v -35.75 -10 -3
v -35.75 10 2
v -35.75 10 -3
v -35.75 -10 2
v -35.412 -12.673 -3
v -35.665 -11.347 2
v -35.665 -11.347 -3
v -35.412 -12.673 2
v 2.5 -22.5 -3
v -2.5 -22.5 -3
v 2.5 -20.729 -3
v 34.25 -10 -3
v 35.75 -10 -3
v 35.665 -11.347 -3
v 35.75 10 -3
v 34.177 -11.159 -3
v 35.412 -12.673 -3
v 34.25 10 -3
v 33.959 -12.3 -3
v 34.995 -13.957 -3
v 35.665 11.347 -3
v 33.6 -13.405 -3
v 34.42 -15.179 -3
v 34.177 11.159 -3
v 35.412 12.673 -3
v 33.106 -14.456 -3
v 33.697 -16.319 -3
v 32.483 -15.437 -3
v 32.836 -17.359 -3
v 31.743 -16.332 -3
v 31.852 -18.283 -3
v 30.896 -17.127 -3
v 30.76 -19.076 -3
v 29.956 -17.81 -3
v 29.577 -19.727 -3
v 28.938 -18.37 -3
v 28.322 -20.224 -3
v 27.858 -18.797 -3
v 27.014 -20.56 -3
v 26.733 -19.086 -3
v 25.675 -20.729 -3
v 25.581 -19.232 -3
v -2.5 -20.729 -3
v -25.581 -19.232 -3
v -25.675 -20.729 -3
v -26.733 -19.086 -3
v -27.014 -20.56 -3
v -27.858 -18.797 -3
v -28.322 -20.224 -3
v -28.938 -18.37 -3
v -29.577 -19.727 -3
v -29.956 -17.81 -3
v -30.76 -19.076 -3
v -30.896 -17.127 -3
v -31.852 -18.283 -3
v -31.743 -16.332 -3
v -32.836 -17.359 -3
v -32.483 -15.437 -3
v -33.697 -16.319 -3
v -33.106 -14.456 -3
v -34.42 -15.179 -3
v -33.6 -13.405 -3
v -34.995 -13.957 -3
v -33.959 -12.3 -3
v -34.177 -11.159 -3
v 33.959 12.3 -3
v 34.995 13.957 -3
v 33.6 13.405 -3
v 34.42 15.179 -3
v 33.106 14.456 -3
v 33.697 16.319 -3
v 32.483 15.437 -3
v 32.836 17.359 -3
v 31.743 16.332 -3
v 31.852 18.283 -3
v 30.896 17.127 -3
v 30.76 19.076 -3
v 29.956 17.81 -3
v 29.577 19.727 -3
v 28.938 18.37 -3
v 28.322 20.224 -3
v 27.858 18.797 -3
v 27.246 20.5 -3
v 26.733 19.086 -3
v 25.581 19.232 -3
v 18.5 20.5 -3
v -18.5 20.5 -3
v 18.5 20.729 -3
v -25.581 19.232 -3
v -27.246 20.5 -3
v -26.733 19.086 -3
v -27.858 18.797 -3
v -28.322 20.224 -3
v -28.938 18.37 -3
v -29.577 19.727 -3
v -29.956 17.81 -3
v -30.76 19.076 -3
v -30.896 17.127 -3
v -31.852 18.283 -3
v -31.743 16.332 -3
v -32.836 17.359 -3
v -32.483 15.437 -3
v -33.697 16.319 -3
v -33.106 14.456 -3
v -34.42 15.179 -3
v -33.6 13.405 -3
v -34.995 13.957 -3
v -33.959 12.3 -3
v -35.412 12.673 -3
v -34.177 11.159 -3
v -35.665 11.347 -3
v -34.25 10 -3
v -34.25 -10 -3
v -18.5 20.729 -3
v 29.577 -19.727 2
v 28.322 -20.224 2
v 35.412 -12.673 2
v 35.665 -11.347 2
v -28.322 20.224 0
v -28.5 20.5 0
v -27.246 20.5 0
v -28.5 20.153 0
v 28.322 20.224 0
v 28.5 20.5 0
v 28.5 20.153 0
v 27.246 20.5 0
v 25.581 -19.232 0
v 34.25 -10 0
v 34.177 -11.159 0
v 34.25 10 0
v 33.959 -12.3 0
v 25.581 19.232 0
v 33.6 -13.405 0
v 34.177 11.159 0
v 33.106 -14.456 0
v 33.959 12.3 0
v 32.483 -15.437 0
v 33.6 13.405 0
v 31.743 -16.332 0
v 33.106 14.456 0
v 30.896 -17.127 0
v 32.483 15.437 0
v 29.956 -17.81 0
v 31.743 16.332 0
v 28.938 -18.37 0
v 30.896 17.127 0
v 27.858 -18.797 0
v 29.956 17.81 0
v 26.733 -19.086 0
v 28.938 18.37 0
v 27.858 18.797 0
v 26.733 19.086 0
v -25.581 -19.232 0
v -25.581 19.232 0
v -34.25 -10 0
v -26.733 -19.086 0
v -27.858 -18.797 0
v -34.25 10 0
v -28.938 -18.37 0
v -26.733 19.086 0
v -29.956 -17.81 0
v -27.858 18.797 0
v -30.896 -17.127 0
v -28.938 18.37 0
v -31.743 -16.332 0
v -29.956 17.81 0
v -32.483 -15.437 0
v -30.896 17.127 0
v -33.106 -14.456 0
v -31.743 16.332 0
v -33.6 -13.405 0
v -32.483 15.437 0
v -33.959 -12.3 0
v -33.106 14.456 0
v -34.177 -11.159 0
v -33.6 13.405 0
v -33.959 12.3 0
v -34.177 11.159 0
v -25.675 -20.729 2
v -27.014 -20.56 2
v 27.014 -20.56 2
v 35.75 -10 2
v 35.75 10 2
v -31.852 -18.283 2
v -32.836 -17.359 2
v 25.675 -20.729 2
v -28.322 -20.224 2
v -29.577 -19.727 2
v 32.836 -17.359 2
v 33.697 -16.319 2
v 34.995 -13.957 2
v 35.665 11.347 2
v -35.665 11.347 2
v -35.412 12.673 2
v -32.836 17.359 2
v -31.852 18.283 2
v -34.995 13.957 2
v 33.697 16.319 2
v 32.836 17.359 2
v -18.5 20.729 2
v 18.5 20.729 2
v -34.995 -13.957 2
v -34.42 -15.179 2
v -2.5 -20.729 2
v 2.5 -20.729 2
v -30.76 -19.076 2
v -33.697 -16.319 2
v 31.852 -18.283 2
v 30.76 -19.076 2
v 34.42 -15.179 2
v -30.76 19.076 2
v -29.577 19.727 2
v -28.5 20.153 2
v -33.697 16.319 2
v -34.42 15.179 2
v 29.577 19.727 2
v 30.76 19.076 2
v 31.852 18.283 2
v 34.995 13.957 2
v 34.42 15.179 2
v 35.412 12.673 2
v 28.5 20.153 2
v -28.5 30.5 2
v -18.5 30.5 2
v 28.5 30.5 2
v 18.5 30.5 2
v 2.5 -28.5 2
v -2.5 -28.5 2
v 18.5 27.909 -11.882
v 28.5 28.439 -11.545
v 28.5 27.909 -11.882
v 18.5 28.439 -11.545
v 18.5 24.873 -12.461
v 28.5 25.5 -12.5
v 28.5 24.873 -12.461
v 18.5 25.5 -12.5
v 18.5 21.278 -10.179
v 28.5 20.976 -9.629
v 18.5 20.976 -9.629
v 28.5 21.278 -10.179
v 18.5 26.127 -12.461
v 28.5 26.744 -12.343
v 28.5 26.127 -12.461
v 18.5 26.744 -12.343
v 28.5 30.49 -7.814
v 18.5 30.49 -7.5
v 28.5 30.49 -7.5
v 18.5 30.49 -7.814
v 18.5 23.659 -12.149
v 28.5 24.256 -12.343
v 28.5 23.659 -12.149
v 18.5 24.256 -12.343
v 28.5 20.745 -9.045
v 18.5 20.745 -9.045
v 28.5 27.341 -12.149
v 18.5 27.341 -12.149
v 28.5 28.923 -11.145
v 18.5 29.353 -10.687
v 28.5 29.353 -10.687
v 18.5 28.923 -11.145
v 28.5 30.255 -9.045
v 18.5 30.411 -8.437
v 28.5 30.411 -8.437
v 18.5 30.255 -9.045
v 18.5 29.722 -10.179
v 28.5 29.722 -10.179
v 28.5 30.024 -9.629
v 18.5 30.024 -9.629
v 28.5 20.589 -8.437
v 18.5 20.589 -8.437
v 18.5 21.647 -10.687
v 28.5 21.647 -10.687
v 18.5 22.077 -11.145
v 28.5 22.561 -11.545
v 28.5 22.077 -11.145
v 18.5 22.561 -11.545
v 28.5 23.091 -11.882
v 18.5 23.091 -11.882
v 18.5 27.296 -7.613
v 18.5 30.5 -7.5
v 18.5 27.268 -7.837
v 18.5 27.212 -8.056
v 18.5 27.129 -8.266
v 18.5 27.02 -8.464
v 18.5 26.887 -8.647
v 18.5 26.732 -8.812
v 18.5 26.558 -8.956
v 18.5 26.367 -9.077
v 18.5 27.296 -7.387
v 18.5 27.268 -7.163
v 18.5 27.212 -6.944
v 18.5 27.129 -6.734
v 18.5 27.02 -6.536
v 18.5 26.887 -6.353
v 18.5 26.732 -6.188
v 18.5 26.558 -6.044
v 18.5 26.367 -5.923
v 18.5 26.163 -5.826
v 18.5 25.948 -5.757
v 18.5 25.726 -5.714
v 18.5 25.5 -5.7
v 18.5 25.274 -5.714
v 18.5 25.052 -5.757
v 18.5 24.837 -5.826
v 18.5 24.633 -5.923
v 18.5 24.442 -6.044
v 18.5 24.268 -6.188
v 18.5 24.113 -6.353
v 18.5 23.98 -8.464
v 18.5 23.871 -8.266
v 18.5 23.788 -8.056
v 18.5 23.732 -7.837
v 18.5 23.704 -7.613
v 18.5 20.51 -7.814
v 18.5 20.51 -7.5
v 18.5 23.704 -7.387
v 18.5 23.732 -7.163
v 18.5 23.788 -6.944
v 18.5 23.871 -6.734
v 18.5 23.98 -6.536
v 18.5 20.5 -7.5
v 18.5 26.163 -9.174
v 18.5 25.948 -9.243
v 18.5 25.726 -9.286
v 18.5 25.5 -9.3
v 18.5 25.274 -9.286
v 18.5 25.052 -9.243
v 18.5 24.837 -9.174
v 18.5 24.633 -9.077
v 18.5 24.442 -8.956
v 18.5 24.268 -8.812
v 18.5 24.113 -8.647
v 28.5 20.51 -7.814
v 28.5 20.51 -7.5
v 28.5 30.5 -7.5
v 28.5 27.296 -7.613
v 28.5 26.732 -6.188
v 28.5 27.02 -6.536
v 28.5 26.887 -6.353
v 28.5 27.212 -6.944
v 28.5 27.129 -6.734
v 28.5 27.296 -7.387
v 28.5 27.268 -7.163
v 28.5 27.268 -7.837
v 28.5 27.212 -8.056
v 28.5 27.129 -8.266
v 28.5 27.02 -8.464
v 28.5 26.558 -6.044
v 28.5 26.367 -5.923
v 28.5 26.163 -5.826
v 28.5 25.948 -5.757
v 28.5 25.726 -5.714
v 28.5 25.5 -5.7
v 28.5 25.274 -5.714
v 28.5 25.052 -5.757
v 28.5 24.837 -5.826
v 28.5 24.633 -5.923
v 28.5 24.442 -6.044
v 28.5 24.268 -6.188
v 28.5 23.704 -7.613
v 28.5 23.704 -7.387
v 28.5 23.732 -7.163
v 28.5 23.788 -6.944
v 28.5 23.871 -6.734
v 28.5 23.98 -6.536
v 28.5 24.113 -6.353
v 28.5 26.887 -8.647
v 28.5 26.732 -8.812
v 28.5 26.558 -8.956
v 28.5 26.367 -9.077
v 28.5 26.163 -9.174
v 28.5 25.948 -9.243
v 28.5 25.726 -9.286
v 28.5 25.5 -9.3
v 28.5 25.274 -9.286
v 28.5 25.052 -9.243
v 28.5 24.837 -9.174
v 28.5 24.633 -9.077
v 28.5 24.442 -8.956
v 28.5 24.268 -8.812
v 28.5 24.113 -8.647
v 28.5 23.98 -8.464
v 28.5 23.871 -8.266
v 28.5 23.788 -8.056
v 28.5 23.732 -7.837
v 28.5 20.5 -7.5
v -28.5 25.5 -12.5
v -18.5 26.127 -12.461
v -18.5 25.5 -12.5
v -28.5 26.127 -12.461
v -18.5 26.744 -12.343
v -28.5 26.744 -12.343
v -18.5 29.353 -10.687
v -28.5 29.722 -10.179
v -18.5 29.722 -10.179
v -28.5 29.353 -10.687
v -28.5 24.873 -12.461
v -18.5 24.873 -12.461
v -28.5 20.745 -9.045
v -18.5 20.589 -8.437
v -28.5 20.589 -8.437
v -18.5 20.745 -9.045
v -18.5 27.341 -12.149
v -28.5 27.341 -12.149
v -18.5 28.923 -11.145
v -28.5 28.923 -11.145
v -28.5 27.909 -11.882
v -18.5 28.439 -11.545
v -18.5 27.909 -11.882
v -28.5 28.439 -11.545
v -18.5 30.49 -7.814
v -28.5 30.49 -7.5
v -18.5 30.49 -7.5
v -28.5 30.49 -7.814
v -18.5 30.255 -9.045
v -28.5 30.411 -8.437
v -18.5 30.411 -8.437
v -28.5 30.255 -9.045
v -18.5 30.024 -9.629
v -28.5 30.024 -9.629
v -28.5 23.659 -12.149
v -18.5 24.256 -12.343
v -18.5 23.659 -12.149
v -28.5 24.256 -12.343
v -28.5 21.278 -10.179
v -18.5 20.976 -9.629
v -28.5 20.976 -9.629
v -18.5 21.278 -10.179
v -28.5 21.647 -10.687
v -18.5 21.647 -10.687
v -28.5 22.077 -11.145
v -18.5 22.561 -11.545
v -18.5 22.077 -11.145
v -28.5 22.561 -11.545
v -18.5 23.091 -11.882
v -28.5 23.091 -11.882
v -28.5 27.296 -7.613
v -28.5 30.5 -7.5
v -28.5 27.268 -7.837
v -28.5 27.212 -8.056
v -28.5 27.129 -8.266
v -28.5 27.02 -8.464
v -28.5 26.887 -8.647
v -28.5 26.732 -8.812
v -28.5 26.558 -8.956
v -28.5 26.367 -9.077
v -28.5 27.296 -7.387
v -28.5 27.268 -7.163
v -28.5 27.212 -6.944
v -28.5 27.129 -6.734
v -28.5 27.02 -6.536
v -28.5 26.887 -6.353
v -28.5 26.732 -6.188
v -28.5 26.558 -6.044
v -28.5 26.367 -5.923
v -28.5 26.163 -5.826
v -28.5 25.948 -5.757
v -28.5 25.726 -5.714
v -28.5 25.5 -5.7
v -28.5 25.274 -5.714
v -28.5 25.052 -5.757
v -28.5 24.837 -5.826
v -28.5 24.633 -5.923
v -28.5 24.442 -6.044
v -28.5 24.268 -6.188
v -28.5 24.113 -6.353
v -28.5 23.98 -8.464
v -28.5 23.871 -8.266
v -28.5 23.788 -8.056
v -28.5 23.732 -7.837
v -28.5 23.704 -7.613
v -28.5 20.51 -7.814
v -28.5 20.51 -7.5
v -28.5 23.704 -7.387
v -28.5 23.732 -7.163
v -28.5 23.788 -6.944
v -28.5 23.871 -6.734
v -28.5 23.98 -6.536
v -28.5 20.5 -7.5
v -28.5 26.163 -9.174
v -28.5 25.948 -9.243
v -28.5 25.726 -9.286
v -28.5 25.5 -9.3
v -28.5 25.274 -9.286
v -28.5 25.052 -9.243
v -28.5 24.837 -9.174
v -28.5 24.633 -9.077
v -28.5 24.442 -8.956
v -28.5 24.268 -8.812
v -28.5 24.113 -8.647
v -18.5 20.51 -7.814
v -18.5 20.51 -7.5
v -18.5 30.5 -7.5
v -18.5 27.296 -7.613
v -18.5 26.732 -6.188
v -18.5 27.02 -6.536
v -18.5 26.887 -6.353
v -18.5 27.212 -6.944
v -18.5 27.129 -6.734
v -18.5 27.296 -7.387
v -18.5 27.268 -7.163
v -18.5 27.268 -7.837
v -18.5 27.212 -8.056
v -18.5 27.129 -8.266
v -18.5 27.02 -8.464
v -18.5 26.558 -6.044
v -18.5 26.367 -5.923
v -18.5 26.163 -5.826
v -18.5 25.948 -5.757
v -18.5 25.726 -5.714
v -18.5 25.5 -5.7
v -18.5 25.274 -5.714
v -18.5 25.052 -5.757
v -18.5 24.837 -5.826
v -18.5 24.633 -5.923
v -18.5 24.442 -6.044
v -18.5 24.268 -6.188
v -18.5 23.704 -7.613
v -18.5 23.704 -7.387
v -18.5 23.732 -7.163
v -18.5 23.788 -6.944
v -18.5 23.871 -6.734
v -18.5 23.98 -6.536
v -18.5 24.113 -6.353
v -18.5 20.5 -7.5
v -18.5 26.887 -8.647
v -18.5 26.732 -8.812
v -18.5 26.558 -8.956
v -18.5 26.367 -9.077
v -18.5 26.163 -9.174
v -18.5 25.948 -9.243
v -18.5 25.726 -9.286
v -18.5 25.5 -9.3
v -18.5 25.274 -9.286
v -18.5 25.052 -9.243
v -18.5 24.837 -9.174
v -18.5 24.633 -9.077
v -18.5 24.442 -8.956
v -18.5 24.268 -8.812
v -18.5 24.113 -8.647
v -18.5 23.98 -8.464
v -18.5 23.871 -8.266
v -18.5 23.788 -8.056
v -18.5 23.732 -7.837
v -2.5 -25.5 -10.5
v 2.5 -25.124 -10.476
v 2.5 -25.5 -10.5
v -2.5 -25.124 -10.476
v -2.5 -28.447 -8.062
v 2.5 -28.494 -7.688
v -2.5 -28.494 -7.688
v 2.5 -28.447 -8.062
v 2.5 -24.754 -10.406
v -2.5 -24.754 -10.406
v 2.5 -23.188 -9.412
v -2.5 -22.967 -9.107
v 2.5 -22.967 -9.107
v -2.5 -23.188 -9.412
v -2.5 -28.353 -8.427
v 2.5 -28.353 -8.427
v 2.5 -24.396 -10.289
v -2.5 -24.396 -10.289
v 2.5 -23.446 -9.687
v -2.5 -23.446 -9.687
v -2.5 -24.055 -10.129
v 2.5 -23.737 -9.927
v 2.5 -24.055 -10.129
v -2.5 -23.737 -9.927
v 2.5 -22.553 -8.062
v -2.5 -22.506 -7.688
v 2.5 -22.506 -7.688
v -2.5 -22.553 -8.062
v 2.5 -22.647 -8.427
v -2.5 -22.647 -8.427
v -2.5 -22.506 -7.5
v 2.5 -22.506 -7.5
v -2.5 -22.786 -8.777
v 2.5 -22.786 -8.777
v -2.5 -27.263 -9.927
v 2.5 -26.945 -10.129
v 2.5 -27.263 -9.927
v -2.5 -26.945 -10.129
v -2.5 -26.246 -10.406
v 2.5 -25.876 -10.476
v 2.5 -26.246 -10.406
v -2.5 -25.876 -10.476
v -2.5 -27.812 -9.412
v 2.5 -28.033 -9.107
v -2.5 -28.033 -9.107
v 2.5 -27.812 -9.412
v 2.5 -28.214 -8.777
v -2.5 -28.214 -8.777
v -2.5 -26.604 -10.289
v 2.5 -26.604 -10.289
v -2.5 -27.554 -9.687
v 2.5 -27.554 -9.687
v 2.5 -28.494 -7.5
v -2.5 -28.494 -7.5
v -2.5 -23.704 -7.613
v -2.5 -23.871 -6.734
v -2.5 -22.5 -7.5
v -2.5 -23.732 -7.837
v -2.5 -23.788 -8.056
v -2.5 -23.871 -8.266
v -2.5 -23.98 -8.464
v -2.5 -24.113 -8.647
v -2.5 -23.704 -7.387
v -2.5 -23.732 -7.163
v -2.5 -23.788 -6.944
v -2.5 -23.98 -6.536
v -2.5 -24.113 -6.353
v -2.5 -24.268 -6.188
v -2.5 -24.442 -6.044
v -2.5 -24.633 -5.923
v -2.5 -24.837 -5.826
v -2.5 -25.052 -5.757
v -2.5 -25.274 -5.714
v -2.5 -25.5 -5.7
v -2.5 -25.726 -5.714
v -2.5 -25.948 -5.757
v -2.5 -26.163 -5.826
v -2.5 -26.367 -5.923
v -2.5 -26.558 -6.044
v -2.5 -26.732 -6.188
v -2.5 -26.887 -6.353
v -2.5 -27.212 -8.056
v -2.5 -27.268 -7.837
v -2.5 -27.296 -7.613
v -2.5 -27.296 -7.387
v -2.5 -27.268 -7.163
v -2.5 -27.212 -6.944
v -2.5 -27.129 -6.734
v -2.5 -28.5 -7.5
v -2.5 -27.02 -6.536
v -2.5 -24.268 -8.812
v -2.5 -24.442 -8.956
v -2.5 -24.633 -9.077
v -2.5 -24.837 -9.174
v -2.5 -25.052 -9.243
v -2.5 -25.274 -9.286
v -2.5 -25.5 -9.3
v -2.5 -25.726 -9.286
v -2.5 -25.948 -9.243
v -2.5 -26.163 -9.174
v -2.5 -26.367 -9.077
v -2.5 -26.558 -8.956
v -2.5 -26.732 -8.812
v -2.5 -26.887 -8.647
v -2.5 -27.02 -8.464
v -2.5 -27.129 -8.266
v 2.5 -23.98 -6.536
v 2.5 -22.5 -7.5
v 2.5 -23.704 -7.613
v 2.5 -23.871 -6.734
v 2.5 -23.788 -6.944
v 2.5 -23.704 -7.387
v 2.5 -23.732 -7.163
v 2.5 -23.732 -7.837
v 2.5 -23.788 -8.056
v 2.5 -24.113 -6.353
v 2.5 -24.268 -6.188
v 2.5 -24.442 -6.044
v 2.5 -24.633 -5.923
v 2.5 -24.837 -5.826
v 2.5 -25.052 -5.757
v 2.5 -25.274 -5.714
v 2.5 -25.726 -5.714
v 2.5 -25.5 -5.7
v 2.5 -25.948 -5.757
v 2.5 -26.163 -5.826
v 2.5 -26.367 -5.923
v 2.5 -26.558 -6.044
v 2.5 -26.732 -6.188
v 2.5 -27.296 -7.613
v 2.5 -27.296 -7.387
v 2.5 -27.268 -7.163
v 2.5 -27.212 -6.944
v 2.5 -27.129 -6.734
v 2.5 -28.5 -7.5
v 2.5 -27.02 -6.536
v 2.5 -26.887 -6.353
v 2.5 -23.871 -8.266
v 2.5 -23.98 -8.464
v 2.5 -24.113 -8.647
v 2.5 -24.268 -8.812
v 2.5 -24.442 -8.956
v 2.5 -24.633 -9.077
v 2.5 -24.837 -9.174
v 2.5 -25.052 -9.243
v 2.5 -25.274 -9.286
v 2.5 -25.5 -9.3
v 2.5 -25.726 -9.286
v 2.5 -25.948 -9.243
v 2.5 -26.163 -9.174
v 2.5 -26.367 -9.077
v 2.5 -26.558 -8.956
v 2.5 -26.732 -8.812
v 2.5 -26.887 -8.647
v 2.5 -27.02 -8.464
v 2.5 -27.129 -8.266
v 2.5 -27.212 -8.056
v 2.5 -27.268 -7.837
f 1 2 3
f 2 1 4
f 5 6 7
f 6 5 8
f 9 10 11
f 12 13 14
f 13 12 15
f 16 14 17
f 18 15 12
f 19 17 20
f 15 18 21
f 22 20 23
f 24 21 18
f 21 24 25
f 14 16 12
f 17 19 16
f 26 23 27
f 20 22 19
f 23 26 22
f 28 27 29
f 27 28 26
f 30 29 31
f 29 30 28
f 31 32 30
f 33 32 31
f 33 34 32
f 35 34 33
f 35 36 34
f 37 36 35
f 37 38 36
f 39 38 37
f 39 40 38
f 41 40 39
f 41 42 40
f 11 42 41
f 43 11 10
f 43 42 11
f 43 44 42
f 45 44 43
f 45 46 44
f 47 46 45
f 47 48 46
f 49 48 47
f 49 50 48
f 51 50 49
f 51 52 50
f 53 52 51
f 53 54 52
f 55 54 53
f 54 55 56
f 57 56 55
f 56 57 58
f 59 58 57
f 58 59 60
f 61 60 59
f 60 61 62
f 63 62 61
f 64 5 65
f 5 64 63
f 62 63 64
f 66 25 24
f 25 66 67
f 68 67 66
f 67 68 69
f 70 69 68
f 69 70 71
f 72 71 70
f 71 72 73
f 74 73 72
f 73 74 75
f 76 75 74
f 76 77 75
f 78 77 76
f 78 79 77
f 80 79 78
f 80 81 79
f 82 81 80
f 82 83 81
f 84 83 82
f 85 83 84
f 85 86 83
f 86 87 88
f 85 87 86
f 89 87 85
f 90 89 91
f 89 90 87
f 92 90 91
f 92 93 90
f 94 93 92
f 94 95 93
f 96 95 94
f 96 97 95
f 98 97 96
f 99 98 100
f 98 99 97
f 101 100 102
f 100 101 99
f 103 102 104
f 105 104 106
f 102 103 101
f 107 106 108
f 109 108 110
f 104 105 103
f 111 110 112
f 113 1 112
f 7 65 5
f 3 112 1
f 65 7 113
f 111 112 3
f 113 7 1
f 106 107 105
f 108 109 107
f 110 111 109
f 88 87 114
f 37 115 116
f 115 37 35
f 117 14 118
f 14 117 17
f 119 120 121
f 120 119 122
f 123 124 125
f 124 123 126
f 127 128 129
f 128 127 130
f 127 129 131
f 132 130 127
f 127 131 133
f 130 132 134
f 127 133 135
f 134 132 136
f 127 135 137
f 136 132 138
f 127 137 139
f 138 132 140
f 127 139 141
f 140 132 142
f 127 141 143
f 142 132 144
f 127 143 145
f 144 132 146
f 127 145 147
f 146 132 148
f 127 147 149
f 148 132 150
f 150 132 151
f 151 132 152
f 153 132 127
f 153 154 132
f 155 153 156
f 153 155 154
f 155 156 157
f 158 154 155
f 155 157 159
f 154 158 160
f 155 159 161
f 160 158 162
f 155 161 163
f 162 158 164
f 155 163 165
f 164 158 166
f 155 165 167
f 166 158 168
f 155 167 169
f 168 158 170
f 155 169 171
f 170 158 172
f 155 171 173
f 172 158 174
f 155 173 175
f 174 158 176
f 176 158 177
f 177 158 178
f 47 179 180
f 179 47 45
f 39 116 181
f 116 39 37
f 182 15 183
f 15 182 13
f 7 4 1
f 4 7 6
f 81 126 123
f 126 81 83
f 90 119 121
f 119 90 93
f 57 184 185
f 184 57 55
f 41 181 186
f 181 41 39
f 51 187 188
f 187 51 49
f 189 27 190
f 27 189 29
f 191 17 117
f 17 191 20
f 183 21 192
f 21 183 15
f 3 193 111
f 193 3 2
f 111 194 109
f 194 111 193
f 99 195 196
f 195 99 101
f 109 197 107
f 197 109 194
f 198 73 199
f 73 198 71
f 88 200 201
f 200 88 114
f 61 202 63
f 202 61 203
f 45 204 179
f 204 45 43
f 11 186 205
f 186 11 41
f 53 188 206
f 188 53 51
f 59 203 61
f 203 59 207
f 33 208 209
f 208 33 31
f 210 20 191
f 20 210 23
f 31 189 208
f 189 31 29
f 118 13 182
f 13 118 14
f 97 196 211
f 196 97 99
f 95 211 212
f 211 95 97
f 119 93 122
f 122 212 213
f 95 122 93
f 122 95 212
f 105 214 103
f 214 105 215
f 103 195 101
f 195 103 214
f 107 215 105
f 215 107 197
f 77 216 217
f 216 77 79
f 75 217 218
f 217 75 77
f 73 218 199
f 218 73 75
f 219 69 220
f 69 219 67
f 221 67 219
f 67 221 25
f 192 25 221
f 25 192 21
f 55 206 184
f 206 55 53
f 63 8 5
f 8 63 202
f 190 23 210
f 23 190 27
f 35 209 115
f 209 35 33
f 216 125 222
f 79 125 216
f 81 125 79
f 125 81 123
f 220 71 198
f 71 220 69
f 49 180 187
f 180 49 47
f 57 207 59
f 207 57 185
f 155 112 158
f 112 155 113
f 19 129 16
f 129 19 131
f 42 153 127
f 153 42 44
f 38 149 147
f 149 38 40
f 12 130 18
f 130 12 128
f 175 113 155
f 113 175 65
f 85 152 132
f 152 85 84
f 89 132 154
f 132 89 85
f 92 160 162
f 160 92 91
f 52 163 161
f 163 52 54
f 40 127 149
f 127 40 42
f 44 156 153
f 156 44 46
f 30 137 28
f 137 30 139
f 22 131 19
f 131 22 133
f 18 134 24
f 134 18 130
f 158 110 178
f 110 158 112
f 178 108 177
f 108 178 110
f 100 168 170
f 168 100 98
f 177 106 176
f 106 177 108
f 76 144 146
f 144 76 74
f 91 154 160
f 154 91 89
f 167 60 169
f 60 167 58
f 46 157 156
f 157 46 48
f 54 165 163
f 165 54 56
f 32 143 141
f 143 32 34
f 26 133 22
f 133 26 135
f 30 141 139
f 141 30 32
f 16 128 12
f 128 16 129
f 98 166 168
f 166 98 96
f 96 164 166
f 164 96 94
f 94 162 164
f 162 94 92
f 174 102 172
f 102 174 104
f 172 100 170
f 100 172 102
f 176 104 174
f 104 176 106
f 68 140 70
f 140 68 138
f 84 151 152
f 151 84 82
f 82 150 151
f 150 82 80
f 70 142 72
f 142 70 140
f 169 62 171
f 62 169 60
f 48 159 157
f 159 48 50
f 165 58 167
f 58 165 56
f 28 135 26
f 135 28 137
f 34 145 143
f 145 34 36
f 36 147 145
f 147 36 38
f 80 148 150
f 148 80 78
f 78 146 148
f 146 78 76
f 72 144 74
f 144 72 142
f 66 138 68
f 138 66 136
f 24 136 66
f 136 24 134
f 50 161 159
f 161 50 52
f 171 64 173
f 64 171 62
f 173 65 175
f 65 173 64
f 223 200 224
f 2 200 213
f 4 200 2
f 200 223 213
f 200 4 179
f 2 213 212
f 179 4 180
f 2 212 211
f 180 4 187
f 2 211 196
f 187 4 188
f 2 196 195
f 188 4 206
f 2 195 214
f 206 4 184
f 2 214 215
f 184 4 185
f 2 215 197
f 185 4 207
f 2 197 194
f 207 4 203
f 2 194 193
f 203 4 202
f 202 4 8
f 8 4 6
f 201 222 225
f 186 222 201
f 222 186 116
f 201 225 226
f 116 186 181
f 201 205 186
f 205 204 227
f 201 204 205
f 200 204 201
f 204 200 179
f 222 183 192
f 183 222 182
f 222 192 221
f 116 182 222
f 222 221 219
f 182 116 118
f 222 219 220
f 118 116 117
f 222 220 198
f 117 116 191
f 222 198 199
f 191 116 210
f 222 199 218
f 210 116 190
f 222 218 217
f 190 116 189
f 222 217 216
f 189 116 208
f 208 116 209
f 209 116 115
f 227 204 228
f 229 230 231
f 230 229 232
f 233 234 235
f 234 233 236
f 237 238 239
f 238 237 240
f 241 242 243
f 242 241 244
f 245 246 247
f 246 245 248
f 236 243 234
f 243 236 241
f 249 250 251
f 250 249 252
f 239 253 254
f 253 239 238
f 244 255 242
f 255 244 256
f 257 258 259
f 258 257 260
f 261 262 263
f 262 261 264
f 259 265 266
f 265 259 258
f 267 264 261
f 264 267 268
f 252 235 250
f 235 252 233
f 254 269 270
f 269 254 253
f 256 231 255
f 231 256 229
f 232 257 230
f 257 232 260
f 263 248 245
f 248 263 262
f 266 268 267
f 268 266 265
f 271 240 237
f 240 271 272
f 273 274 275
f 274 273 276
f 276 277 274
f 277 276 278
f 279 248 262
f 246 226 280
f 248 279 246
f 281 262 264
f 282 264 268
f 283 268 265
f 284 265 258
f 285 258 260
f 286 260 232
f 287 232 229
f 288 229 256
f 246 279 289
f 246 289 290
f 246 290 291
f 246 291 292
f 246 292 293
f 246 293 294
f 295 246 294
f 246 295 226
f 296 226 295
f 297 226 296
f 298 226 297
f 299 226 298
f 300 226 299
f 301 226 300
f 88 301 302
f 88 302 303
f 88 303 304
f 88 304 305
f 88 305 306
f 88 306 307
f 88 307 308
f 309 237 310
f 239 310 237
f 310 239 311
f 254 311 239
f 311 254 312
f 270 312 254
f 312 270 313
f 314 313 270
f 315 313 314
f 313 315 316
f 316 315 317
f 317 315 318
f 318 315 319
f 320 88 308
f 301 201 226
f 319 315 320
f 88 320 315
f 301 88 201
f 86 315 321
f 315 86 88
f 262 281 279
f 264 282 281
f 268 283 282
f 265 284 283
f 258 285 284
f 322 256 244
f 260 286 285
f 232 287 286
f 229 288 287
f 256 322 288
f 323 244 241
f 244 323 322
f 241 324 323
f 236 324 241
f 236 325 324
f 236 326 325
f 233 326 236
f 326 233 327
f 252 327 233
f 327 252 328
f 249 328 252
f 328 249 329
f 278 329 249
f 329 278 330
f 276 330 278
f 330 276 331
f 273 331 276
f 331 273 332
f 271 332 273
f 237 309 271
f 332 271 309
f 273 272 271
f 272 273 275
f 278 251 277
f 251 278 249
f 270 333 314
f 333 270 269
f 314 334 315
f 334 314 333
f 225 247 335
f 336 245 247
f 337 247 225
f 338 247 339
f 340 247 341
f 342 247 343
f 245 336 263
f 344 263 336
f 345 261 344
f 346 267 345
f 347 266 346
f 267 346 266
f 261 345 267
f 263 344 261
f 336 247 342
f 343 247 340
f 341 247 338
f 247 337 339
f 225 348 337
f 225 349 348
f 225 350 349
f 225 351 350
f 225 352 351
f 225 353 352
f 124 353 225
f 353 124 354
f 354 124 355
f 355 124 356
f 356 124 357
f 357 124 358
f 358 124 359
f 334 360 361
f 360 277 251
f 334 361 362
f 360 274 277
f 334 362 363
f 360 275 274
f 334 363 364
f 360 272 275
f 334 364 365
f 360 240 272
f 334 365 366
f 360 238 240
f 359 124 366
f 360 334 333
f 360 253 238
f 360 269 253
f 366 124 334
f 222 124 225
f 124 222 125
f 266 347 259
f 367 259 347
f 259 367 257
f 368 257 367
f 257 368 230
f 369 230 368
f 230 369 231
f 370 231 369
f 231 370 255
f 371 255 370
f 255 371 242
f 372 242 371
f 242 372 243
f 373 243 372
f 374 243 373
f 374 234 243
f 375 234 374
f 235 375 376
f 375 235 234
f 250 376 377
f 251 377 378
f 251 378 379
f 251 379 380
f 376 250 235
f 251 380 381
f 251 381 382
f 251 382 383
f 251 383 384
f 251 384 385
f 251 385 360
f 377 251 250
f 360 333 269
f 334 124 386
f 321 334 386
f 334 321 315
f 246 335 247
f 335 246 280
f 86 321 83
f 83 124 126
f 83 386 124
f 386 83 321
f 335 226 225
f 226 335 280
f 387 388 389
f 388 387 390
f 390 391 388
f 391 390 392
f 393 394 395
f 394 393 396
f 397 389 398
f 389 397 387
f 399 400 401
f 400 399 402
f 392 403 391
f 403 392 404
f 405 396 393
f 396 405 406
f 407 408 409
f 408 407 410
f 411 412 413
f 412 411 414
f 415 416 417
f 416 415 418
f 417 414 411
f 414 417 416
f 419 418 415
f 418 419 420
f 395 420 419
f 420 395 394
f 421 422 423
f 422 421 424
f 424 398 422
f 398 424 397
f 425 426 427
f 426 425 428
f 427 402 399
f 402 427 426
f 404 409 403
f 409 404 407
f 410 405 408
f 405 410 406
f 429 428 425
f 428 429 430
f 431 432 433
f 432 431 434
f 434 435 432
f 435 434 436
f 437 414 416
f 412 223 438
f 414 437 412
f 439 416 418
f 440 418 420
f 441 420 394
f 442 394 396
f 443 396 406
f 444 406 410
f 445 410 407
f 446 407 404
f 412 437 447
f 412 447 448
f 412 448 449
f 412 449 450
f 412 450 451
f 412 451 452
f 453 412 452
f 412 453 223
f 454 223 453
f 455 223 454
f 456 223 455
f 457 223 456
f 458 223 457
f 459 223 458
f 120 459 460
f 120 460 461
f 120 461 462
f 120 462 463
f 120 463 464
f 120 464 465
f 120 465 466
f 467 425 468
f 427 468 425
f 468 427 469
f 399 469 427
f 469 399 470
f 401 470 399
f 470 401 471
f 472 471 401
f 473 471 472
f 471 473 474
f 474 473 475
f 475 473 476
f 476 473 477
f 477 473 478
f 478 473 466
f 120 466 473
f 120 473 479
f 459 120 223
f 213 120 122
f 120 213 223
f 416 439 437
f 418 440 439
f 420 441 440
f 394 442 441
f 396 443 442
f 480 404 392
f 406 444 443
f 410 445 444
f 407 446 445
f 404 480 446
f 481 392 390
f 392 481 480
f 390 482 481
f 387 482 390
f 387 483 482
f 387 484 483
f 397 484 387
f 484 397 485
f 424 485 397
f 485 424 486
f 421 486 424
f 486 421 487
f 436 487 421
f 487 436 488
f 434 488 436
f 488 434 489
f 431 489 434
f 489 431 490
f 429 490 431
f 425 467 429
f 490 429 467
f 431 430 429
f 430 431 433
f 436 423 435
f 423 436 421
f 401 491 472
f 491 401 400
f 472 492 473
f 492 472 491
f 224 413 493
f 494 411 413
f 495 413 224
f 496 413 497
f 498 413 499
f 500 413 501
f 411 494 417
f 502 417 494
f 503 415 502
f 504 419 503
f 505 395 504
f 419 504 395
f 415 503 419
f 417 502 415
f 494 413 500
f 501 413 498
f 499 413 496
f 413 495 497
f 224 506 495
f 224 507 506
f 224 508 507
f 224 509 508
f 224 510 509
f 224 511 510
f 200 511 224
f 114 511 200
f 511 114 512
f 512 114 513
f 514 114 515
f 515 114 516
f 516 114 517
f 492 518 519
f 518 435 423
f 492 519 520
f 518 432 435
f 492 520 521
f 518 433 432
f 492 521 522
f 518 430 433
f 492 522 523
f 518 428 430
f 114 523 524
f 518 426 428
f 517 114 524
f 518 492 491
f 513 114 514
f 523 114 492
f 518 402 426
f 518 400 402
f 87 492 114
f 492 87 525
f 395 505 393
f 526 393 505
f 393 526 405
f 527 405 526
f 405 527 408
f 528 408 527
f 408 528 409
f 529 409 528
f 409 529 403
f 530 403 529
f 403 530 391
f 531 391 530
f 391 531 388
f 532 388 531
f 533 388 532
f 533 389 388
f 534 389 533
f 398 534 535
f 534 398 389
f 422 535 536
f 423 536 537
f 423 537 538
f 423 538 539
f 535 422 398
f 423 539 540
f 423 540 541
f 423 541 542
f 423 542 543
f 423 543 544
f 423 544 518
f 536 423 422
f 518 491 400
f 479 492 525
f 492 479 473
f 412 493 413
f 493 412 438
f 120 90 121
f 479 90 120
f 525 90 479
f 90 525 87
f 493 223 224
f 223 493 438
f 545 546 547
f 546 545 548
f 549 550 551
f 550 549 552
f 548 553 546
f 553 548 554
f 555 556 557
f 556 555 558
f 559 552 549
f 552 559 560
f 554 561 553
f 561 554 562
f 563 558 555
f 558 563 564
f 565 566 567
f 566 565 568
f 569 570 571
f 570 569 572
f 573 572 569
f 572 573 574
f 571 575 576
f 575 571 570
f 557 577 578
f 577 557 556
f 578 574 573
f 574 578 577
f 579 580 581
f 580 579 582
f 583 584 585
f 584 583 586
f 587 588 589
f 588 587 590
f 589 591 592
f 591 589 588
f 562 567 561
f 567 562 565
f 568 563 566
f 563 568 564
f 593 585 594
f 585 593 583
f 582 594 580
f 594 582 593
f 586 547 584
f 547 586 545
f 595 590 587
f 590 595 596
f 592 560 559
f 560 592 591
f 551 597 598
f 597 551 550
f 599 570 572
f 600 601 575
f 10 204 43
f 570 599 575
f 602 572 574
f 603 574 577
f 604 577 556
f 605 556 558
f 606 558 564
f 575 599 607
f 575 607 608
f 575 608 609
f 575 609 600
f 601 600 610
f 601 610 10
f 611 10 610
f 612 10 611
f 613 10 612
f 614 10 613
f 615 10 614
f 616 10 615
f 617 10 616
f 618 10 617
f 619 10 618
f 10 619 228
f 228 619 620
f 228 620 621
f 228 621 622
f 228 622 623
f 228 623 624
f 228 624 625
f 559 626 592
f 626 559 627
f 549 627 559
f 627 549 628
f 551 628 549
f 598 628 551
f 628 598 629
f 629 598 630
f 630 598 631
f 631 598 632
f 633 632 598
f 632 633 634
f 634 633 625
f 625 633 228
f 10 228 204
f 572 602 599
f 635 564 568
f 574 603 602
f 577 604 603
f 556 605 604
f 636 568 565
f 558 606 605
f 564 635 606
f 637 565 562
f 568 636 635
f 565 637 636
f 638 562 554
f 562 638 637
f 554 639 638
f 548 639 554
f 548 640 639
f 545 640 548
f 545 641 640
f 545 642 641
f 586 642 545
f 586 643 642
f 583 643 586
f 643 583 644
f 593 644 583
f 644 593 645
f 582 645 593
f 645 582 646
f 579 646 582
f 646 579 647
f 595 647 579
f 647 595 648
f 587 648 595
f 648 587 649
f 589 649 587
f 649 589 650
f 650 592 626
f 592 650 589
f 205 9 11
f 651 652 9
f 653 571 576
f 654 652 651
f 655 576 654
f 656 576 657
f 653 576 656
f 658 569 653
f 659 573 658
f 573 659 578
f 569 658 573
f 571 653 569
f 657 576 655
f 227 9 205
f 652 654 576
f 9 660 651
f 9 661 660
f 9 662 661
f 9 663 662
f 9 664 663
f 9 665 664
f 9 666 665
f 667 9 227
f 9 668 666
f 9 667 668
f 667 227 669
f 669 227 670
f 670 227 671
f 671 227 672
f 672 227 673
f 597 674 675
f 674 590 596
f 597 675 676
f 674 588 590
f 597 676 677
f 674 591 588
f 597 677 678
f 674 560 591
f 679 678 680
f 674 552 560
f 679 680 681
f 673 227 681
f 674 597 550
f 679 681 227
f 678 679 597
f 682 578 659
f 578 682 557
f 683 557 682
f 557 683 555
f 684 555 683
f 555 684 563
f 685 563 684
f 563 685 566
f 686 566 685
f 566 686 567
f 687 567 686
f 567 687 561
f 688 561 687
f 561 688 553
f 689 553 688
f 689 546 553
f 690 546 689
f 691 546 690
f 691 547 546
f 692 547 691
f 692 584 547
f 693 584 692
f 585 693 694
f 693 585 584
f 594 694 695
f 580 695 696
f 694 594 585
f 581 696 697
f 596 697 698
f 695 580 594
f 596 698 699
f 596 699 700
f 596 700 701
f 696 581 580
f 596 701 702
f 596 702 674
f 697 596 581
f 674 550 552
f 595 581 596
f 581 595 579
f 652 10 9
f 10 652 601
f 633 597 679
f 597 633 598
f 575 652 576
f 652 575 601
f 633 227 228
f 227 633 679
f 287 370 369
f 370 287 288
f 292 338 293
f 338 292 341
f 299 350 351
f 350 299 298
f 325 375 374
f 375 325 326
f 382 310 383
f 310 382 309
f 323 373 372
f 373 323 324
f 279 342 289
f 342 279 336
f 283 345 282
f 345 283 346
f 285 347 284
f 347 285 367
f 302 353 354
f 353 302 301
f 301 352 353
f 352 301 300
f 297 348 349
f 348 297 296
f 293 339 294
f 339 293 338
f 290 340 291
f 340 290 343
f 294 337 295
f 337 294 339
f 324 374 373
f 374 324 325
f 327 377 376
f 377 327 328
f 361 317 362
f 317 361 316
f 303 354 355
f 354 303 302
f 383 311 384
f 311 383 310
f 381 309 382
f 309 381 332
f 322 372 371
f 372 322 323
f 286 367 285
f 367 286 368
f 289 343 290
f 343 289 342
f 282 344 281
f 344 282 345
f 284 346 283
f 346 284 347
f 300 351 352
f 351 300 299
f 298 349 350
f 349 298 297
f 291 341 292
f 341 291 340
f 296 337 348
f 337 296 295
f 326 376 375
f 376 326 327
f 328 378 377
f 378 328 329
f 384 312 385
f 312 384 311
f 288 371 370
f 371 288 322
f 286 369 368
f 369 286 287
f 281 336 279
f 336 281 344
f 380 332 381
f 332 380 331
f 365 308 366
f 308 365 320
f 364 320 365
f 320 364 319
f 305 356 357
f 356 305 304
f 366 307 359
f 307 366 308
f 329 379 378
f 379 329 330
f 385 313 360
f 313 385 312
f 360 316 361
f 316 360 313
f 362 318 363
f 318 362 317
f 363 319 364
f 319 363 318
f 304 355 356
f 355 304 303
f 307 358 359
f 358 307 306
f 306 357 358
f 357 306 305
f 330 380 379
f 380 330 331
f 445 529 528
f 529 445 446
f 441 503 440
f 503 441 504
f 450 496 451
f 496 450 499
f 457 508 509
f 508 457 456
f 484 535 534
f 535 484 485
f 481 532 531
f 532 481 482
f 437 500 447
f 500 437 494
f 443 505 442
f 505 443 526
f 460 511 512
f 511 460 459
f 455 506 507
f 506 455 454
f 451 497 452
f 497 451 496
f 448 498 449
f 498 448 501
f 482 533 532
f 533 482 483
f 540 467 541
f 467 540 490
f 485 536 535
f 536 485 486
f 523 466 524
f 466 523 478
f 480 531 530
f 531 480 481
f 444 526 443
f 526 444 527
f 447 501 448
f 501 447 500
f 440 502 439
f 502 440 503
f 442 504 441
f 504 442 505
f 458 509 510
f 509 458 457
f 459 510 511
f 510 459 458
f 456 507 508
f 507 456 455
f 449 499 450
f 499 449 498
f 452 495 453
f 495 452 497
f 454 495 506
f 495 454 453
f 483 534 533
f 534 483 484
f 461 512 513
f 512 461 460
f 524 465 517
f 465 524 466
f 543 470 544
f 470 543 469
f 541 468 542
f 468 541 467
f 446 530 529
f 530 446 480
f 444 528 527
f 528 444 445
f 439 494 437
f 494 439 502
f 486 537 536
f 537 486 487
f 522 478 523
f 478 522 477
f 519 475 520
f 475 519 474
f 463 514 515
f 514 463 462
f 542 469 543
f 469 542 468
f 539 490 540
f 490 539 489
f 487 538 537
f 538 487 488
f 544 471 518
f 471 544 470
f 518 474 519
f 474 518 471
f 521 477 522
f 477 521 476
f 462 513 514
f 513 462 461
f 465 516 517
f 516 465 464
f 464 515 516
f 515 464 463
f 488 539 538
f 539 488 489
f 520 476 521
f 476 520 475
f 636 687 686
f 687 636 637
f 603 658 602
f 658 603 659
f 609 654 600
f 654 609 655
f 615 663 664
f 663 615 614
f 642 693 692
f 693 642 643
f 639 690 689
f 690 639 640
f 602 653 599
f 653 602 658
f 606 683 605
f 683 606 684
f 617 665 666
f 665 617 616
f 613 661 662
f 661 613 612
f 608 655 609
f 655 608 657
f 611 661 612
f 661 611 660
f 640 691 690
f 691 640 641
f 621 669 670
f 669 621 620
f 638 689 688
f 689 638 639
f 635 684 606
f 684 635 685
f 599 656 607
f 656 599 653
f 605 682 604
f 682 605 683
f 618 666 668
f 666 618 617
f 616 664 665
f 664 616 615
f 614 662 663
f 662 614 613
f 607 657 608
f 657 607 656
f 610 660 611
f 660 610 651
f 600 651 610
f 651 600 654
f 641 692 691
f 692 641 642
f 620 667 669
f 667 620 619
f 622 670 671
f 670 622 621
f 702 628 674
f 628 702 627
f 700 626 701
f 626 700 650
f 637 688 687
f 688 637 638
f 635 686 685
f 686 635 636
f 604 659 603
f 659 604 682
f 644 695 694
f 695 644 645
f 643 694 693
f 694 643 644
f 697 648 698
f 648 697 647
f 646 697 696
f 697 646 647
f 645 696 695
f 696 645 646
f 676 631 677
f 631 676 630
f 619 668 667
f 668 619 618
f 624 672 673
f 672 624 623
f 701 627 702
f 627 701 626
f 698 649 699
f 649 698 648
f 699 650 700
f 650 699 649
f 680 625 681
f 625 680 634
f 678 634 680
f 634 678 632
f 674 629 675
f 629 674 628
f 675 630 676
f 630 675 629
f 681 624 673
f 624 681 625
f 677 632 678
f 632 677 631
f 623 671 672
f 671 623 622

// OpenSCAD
$fn = 50;


difference() {
	union() {
		translate(v = [0, 0, -3]) {
			rotate(a = [0, 0, 0]) {
				difference() {
					union() {
						hull() {
							translate(v = [-25.0000000000, 10.0000000000, 0]) {
								cylinder(h = 3, r = 10.7500000000);
							}
							translate(v = [25.0000000000, 10.0000000000, 0]) {
								cylinder(h = 3, r = 10.7500000000);
							}
							translate(v = [-25.0000000000, -10.0000000000, 0]) {
								cylinder(h = 3, r = 10.7500000000);
							}
							translate(v = [25.0000000000, -10.0000000000, 0]) {
								cylinder(h = 3, r = 10.7500000000);
							}
						}
					}
					union() {
						hull() {
							translate(v = [-25.0000000000, 10.0000000000, 0]) {
								cylinder(h = 3, r = 9.2500000000);
							}
							translate(v = [25.0000000000, 10.0000000000, 0]) {
								cylinder(h = 3, r = 9.2500000000);
							}
							translate(v = [-25.0000000000, -10.0000000000, 0]) {
								cylinder(h = 3, r = 9.2500000000);
							}
							translate(v = [25.0000000000, -10.0000000000, 0]) {
								cylinder(h = 3, r = 9.2500000000);
							}
						}
					}
				}
			}
		}
		hull() {
			translate(v = [-25.0000000000, 10.0000000000, 0]) {
				cylinder(h = 2, r = 10.7500000000);
			}
			translate(v = [25.0000000000, 10.0000000000, 0]) {
				cylinder(h = 2, r = 10.7500000000);
			}
			translate(v = [-25.0000000000, -10.0000000000, 0]) {
				cylinder(h = 2, r = 10.7500000000);
			}
			translate(v = [25.0000000000, -10.0000000000, 0]) {
				cylinder(h = 2, r = 10.7500000000);
			}
		}
		translate(v = [18.5000000000, 25.5000000000, -7.5000000000]) {
			rotate(a = [0, 90, 0]) {
				cylinder(h = 10, r = 5.0000000000);
			}
		}
		translate(v = [18.5000000000, 20.5000000000, -7.5000000000]) {
			cube(size = [10, 10, 7.5000000000]);
		}
		translate(v = [18.5000000000, 3.0000000000, 0.0000000000]) {
			cube(size = [10, 27.5000000000, 2]);
		}
		translate(v = [-28.5000000000, 25.5000000000, -7.5000000000]) {
			rotate(a = [0, 90, 0]) {
				cylinder(h = 10, r = 5.0000000000);
			}
		}
		translate(v = [-28.5000000000, 20.5000000000, -7.5000000000]) {
			cube(size = [10, 10, 7.5000000000]);
		}
		translate(v = [-28.5000000000, 3.0000000000, 0.0000000000]) {
			cube(size = [10, 27.5000000000, 2]);
		}
		translate(v = [-2.5000000000, -25.5000000000, -7.5000000000]) {
			rotate(a = [0, 90, 0]) {
				cylinder(h = 5, r = 3.0000000000);
			}
		}
		translate(v = [-2.5000000000, -28.5000000000, -7.5000000000]) {
			cube(size = [5, 6, 7.5000000000]);
		}
		translate(v = [-2.5000000000, -28.5000000000, -3.0000000000]) {
			cube(size = [5, 38.2500000000, 5]);
		}
	}
	union() {
		translate(v = [0, 0, -8]) {
			hull() {
				translate(v = [-25.0000000000, 10.0000000000, 0]) {
					cylinder(h = 8, r = 9.2500000000);
				}
				translate(v = [25.0000000000, 10.0000000000, 0]) {
					cylinder(h = 8, r = 9.2500000000);
				}
				translate(v = [-25.0000000000, -10.0000000000, 0]) {
					cylinder(h = 8, r = 9.2500000000);
				}
				translate(v = [25.0000000000, -10.0000000000, 0]) {
					cylinder(h = 8, r = 9.2500000000);
				}
			}
		}
		translate(v = [18.5000000000, 25.5000000000, -7.5000000000]) {
			rotate(a = [0, 90, 0]) {
				cylinder(h = 10, r = 1.8000000000);
			}
		}
		translate(v = [-28.5000000000, 25.5000000000, -7.5000000000]) {
			rotate(a = [0, 90, 0]) {
				cylinder(h = 10, r = 1.8000000000);
			}
		}
		translate(v = [-5.0000000000, -25.5000000000, -7.5000000000]) {
			rotate(a = [0, 90, 0]) {
				cylinder(h = 10, r = 1.8000000000);
			}
		}
	}
}
